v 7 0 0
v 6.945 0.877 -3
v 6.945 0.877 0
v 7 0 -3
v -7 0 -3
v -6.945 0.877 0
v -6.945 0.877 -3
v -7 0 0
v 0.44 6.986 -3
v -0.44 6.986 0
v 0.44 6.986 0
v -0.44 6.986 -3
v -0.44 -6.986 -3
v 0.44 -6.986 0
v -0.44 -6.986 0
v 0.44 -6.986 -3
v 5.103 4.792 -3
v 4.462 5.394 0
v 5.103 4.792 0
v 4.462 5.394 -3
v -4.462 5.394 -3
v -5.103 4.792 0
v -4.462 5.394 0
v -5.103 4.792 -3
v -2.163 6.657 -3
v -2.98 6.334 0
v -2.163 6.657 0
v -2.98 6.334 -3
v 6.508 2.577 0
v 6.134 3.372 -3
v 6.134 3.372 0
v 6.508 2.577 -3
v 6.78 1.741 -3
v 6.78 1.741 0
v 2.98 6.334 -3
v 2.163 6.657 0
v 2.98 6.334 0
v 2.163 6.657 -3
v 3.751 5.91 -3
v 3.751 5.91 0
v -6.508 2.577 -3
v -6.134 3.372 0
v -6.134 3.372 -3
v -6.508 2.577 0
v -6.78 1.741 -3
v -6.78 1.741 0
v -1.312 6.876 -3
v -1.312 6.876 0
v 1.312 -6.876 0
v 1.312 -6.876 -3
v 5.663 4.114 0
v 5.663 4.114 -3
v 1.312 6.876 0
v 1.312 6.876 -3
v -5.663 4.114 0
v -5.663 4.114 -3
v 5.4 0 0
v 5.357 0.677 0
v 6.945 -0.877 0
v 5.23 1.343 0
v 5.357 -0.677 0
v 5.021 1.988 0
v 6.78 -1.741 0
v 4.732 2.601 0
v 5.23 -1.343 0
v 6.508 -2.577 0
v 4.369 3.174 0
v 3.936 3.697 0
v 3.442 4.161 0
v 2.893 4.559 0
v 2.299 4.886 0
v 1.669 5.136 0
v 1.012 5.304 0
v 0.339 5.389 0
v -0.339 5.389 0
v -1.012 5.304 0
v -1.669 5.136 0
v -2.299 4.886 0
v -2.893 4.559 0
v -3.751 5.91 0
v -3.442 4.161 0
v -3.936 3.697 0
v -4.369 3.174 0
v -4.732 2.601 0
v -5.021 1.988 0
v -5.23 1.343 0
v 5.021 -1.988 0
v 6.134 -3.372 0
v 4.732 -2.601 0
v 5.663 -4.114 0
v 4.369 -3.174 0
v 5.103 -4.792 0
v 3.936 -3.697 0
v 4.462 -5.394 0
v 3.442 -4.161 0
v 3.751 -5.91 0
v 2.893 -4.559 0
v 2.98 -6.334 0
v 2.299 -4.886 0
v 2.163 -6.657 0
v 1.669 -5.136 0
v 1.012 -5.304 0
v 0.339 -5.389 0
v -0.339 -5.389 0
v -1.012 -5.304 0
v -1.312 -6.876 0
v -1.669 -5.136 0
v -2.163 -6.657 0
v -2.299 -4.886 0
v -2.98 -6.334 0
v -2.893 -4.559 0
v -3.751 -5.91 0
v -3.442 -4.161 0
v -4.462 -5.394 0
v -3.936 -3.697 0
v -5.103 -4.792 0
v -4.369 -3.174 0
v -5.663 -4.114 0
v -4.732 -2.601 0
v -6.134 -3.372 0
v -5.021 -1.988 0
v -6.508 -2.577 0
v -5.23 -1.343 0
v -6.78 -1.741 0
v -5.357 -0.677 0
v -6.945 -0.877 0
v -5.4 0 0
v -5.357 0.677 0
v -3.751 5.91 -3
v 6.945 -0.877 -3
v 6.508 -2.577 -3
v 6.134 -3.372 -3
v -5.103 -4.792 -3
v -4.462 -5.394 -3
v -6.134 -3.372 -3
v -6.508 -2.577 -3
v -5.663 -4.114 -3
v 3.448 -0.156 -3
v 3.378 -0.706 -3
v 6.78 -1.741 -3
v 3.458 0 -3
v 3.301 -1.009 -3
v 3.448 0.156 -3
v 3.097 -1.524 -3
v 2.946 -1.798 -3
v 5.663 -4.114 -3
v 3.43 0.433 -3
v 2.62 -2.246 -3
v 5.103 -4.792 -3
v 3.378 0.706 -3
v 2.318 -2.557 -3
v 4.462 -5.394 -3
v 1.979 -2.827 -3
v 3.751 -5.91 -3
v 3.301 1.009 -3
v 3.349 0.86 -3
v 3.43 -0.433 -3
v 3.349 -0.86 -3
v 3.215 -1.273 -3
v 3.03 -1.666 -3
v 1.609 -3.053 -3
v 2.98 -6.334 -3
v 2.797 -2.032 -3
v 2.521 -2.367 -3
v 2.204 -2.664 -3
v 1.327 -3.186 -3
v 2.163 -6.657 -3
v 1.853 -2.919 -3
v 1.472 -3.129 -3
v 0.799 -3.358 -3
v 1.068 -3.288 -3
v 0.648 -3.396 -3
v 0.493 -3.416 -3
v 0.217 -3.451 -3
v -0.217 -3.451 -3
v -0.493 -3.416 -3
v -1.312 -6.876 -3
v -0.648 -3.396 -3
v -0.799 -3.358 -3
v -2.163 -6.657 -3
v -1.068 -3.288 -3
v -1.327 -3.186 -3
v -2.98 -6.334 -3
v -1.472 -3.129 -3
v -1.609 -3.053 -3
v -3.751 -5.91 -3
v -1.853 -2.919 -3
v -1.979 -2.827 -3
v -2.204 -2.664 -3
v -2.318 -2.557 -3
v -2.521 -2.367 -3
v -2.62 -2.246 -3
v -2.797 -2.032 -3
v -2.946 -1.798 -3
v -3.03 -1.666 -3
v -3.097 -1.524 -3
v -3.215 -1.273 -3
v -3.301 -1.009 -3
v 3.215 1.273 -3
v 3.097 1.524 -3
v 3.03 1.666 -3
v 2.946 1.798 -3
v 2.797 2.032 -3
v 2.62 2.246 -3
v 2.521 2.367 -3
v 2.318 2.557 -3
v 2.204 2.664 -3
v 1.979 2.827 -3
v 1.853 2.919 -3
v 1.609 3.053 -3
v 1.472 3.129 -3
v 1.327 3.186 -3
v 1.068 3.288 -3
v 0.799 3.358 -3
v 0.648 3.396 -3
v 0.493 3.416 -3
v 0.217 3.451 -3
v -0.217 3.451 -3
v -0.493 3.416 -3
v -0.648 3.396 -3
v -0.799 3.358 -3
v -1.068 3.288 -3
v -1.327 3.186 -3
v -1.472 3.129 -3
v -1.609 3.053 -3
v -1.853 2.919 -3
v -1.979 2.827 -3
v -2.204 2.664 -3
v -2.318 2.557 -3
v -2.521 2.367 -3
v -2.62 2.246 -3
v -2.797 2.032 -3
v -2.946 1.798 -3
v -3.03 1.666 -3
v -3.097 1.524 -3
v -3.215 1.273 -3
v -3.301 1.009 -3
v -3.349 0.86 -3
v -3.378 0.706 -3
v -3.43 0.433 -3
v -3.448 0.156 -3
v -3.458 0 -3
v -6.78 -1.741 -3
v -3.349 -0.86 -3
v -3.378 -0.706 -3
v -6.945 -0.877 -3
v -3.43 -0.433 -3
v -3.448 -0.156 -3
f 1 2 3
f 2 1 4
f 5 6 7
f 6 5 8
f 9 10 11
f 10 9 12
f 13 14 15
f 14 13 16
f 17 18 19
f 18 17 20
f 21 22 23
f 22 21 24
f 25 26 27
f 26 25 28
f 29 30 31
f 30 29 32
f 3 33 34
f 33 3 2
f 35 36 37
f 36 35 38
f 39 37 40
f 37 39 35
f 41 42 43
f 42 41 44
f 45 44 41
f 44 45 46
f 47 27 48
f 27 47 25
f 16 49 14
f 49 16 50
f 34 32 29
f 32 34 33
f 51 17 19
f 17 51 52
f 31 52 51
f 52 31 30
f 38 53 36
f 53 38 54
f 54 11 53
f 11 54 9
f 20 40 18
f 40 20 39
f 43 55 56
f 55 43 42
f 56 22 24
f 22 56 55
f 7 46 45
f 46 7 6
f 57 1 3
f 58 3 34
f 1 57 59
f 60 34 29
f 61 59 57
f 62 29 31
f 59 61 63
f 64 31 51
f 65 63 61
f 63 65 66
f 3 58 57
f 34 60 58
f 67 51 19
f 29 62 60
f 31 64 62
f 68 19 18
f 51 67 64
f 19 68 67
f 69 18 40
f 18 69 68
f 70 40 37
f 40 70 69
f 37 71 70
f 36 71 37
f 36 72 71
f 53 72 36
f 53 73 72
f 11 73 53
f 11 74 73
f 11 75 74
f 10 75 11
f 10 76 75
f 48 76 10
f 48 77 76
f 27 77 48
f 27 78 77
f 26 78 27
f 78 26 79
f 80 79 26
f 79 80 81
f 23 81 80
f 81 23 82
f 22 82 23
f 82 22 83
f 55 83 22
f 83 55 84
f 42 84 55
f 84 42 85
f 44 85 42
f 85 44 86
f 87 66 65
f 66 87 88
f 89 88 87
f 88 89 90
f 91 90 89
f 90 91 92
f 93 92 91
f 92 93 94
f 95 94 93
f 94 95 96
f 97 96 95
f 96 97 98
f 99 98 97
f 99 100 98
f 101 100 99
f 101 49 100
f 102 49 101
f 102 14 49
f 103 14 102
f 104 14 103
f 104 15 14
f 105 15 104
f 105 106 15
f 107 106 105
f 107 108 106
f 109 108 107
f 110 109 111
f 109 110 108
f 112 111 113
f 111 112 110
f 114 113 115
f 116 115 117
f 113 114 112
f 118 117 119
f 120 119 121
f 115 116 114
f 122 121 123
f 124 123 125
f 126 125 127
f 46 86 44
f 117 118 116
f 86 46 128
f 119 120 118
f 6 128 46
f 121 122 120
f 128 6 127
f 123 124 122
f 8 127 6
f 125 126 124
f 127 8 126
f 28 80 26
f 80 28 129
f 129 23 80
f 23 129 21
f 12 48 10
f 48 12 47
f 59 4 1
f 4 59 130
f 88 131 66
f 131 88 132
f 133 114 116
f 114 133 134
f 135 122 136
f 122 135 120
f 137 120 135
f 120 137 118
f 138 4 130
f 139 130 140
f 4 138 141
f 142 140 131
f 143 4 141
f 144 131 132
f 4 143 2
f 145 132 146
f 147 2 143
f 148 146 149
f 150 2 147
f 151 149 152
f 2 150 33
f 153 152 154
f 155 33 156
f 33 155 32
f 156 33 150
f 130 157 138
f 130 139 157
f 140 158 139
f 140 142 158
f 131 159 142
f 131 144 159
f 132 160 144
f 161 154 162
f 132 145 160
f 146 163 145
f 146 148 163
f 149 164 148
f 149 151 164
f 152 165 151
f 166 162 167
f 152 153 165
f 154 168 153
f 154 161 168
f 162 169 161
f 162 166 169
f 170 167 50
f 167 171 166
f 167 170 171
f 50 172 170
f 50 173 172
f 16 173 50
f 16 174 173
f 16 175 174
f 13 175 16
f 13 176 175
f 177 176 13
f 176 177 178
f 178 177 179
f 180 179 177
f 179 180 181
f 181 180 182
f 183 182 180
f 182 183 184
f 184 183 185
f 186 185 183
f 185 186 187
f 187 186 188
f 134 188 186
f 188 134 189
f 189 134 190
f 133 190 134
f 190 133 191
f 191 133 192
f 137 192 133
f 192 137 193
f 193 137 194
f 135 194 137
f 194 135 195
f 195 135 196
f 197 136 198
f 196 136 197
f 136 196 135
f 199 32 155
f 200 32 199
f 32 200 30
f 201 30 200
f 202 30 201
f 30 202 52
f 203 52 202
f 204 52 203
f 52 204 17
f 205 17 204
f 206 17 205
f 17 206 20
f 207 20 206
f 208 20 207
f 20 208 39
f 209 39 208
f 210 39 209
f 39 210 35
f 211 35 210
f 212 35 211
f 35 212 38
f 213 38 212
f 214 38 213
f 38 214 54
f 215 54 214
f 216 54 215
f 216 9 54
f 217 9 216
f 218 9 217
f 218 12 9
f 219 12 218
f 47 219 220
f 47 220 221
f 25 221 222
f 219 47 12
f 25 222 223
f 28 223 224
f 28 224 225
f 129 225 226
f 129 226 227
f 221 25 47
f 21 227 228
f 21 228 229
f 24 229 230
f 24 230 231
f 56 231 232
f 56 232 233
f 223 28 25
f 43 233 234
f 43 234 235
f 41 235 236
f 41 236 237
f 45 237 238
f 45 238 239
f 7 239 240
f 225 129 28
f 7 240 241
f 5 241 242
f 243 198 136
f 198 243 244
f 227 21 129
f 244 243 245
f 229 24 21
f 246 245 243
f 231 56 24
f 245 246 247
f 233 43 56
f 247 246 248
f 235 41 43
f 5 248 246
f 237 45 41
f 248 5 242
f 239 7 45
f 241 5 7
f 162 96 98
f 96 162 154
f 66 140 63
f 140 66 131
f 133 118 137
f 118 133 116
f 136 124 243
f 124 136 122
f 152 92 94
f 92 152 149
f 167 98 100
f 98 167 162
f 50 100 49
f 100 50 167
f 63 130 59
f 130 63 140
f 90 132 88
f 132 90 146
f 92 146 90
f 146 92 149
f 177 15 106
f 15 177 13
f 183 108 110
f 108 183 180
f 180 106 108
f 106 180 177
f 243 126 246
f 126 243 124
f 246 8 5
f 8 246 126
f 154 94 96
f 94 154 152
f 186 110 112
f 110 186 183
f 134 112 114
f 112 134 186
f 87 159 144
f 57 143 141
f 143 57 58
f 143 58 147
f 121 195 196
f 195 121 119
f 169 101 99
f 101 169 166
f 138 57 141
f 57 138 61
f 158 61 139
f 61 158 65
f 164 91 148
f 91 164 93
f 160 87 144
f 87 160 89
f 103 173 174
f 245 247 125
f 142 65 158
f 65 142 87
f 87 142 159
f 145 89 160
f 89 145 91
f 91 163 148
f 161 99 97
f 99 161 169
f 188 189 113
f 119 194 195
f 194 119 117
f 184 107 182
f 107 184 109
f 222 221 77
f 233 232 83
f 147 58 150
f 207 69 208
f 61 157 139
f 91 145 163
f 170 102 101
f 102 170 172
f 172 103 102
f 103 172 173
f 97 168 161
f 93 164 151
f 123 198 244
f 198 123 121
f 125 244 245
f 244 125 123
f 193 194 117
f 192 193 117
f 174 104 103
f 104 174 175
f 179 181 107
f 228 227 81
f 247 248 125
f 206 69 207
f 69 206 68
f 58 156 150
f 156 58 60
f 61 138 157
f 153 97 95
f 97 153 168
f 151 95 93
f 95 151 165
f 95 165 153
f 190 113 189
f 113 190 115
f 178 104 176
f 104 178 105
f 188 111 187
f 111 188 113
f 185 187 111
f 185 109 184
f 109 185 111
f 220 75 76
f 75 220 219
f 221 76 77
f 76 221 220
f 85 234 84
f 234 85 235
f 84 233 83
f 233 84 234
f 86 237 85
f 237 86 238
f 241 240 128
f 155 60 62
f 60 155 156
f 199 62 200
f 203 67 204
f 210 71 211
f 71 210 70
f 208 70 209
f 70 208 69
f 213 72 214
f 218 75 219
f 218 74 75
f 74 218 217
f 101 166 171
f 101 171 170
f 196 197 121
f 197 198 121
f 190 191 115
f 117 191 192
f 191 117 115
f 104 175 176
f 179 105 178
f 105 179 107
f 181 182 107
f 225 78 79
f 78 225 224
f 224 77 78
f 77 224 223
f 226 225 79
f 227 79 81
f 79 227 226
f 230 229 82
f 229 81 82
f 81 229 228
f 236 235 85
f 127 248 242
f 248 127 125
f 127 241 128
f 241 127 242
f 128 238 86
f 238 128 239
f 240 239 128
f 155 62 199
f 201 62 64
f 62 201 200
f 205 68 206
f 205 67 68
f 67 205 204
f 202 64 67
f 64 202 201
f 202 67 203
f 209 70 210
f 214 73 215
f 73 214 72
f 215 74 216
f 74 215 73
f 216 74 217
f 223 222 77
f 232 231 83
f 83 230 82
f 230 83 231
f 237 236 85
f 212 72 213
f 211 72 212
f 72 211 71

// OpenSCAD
$fn = 50;


difference() {
	union() {
		translate(v = [0, 0, -3.0000000000]) {
			cylinder(h = 3, r = 7.0000000000);
		}
		#translate(v = [0, 0, -6.0000000000]) {
			cylinder(h = 6, r = 2.8750000000);
		}
	}
	union() {
		translate(v = [0, 0, 0]) {
			rotate(a = [0, 0, 0]) {
				difference() {
					union() {
						translate(v = [0, 0, -6.0000000000]) {
							cylinder(h = 6, r = 2.6000000000);
						}
						translate(v = [0, 0, -3.9000000000]) {
							cylinder(h = 3.9000000000, r1 = 2.8750000000, r2 = 5.4000000000);
						}
						translate(v = [0, 0, -6.0000000000]) {
							cylinder(h = 6, r = 2.8750000000);
						}
						translate(v = [0, 0, -6.0000000000]) {
							cylinder(h = 6, r = 2.6000000000);
						}
					}
					union();
				}
			}
		}
	}
}
